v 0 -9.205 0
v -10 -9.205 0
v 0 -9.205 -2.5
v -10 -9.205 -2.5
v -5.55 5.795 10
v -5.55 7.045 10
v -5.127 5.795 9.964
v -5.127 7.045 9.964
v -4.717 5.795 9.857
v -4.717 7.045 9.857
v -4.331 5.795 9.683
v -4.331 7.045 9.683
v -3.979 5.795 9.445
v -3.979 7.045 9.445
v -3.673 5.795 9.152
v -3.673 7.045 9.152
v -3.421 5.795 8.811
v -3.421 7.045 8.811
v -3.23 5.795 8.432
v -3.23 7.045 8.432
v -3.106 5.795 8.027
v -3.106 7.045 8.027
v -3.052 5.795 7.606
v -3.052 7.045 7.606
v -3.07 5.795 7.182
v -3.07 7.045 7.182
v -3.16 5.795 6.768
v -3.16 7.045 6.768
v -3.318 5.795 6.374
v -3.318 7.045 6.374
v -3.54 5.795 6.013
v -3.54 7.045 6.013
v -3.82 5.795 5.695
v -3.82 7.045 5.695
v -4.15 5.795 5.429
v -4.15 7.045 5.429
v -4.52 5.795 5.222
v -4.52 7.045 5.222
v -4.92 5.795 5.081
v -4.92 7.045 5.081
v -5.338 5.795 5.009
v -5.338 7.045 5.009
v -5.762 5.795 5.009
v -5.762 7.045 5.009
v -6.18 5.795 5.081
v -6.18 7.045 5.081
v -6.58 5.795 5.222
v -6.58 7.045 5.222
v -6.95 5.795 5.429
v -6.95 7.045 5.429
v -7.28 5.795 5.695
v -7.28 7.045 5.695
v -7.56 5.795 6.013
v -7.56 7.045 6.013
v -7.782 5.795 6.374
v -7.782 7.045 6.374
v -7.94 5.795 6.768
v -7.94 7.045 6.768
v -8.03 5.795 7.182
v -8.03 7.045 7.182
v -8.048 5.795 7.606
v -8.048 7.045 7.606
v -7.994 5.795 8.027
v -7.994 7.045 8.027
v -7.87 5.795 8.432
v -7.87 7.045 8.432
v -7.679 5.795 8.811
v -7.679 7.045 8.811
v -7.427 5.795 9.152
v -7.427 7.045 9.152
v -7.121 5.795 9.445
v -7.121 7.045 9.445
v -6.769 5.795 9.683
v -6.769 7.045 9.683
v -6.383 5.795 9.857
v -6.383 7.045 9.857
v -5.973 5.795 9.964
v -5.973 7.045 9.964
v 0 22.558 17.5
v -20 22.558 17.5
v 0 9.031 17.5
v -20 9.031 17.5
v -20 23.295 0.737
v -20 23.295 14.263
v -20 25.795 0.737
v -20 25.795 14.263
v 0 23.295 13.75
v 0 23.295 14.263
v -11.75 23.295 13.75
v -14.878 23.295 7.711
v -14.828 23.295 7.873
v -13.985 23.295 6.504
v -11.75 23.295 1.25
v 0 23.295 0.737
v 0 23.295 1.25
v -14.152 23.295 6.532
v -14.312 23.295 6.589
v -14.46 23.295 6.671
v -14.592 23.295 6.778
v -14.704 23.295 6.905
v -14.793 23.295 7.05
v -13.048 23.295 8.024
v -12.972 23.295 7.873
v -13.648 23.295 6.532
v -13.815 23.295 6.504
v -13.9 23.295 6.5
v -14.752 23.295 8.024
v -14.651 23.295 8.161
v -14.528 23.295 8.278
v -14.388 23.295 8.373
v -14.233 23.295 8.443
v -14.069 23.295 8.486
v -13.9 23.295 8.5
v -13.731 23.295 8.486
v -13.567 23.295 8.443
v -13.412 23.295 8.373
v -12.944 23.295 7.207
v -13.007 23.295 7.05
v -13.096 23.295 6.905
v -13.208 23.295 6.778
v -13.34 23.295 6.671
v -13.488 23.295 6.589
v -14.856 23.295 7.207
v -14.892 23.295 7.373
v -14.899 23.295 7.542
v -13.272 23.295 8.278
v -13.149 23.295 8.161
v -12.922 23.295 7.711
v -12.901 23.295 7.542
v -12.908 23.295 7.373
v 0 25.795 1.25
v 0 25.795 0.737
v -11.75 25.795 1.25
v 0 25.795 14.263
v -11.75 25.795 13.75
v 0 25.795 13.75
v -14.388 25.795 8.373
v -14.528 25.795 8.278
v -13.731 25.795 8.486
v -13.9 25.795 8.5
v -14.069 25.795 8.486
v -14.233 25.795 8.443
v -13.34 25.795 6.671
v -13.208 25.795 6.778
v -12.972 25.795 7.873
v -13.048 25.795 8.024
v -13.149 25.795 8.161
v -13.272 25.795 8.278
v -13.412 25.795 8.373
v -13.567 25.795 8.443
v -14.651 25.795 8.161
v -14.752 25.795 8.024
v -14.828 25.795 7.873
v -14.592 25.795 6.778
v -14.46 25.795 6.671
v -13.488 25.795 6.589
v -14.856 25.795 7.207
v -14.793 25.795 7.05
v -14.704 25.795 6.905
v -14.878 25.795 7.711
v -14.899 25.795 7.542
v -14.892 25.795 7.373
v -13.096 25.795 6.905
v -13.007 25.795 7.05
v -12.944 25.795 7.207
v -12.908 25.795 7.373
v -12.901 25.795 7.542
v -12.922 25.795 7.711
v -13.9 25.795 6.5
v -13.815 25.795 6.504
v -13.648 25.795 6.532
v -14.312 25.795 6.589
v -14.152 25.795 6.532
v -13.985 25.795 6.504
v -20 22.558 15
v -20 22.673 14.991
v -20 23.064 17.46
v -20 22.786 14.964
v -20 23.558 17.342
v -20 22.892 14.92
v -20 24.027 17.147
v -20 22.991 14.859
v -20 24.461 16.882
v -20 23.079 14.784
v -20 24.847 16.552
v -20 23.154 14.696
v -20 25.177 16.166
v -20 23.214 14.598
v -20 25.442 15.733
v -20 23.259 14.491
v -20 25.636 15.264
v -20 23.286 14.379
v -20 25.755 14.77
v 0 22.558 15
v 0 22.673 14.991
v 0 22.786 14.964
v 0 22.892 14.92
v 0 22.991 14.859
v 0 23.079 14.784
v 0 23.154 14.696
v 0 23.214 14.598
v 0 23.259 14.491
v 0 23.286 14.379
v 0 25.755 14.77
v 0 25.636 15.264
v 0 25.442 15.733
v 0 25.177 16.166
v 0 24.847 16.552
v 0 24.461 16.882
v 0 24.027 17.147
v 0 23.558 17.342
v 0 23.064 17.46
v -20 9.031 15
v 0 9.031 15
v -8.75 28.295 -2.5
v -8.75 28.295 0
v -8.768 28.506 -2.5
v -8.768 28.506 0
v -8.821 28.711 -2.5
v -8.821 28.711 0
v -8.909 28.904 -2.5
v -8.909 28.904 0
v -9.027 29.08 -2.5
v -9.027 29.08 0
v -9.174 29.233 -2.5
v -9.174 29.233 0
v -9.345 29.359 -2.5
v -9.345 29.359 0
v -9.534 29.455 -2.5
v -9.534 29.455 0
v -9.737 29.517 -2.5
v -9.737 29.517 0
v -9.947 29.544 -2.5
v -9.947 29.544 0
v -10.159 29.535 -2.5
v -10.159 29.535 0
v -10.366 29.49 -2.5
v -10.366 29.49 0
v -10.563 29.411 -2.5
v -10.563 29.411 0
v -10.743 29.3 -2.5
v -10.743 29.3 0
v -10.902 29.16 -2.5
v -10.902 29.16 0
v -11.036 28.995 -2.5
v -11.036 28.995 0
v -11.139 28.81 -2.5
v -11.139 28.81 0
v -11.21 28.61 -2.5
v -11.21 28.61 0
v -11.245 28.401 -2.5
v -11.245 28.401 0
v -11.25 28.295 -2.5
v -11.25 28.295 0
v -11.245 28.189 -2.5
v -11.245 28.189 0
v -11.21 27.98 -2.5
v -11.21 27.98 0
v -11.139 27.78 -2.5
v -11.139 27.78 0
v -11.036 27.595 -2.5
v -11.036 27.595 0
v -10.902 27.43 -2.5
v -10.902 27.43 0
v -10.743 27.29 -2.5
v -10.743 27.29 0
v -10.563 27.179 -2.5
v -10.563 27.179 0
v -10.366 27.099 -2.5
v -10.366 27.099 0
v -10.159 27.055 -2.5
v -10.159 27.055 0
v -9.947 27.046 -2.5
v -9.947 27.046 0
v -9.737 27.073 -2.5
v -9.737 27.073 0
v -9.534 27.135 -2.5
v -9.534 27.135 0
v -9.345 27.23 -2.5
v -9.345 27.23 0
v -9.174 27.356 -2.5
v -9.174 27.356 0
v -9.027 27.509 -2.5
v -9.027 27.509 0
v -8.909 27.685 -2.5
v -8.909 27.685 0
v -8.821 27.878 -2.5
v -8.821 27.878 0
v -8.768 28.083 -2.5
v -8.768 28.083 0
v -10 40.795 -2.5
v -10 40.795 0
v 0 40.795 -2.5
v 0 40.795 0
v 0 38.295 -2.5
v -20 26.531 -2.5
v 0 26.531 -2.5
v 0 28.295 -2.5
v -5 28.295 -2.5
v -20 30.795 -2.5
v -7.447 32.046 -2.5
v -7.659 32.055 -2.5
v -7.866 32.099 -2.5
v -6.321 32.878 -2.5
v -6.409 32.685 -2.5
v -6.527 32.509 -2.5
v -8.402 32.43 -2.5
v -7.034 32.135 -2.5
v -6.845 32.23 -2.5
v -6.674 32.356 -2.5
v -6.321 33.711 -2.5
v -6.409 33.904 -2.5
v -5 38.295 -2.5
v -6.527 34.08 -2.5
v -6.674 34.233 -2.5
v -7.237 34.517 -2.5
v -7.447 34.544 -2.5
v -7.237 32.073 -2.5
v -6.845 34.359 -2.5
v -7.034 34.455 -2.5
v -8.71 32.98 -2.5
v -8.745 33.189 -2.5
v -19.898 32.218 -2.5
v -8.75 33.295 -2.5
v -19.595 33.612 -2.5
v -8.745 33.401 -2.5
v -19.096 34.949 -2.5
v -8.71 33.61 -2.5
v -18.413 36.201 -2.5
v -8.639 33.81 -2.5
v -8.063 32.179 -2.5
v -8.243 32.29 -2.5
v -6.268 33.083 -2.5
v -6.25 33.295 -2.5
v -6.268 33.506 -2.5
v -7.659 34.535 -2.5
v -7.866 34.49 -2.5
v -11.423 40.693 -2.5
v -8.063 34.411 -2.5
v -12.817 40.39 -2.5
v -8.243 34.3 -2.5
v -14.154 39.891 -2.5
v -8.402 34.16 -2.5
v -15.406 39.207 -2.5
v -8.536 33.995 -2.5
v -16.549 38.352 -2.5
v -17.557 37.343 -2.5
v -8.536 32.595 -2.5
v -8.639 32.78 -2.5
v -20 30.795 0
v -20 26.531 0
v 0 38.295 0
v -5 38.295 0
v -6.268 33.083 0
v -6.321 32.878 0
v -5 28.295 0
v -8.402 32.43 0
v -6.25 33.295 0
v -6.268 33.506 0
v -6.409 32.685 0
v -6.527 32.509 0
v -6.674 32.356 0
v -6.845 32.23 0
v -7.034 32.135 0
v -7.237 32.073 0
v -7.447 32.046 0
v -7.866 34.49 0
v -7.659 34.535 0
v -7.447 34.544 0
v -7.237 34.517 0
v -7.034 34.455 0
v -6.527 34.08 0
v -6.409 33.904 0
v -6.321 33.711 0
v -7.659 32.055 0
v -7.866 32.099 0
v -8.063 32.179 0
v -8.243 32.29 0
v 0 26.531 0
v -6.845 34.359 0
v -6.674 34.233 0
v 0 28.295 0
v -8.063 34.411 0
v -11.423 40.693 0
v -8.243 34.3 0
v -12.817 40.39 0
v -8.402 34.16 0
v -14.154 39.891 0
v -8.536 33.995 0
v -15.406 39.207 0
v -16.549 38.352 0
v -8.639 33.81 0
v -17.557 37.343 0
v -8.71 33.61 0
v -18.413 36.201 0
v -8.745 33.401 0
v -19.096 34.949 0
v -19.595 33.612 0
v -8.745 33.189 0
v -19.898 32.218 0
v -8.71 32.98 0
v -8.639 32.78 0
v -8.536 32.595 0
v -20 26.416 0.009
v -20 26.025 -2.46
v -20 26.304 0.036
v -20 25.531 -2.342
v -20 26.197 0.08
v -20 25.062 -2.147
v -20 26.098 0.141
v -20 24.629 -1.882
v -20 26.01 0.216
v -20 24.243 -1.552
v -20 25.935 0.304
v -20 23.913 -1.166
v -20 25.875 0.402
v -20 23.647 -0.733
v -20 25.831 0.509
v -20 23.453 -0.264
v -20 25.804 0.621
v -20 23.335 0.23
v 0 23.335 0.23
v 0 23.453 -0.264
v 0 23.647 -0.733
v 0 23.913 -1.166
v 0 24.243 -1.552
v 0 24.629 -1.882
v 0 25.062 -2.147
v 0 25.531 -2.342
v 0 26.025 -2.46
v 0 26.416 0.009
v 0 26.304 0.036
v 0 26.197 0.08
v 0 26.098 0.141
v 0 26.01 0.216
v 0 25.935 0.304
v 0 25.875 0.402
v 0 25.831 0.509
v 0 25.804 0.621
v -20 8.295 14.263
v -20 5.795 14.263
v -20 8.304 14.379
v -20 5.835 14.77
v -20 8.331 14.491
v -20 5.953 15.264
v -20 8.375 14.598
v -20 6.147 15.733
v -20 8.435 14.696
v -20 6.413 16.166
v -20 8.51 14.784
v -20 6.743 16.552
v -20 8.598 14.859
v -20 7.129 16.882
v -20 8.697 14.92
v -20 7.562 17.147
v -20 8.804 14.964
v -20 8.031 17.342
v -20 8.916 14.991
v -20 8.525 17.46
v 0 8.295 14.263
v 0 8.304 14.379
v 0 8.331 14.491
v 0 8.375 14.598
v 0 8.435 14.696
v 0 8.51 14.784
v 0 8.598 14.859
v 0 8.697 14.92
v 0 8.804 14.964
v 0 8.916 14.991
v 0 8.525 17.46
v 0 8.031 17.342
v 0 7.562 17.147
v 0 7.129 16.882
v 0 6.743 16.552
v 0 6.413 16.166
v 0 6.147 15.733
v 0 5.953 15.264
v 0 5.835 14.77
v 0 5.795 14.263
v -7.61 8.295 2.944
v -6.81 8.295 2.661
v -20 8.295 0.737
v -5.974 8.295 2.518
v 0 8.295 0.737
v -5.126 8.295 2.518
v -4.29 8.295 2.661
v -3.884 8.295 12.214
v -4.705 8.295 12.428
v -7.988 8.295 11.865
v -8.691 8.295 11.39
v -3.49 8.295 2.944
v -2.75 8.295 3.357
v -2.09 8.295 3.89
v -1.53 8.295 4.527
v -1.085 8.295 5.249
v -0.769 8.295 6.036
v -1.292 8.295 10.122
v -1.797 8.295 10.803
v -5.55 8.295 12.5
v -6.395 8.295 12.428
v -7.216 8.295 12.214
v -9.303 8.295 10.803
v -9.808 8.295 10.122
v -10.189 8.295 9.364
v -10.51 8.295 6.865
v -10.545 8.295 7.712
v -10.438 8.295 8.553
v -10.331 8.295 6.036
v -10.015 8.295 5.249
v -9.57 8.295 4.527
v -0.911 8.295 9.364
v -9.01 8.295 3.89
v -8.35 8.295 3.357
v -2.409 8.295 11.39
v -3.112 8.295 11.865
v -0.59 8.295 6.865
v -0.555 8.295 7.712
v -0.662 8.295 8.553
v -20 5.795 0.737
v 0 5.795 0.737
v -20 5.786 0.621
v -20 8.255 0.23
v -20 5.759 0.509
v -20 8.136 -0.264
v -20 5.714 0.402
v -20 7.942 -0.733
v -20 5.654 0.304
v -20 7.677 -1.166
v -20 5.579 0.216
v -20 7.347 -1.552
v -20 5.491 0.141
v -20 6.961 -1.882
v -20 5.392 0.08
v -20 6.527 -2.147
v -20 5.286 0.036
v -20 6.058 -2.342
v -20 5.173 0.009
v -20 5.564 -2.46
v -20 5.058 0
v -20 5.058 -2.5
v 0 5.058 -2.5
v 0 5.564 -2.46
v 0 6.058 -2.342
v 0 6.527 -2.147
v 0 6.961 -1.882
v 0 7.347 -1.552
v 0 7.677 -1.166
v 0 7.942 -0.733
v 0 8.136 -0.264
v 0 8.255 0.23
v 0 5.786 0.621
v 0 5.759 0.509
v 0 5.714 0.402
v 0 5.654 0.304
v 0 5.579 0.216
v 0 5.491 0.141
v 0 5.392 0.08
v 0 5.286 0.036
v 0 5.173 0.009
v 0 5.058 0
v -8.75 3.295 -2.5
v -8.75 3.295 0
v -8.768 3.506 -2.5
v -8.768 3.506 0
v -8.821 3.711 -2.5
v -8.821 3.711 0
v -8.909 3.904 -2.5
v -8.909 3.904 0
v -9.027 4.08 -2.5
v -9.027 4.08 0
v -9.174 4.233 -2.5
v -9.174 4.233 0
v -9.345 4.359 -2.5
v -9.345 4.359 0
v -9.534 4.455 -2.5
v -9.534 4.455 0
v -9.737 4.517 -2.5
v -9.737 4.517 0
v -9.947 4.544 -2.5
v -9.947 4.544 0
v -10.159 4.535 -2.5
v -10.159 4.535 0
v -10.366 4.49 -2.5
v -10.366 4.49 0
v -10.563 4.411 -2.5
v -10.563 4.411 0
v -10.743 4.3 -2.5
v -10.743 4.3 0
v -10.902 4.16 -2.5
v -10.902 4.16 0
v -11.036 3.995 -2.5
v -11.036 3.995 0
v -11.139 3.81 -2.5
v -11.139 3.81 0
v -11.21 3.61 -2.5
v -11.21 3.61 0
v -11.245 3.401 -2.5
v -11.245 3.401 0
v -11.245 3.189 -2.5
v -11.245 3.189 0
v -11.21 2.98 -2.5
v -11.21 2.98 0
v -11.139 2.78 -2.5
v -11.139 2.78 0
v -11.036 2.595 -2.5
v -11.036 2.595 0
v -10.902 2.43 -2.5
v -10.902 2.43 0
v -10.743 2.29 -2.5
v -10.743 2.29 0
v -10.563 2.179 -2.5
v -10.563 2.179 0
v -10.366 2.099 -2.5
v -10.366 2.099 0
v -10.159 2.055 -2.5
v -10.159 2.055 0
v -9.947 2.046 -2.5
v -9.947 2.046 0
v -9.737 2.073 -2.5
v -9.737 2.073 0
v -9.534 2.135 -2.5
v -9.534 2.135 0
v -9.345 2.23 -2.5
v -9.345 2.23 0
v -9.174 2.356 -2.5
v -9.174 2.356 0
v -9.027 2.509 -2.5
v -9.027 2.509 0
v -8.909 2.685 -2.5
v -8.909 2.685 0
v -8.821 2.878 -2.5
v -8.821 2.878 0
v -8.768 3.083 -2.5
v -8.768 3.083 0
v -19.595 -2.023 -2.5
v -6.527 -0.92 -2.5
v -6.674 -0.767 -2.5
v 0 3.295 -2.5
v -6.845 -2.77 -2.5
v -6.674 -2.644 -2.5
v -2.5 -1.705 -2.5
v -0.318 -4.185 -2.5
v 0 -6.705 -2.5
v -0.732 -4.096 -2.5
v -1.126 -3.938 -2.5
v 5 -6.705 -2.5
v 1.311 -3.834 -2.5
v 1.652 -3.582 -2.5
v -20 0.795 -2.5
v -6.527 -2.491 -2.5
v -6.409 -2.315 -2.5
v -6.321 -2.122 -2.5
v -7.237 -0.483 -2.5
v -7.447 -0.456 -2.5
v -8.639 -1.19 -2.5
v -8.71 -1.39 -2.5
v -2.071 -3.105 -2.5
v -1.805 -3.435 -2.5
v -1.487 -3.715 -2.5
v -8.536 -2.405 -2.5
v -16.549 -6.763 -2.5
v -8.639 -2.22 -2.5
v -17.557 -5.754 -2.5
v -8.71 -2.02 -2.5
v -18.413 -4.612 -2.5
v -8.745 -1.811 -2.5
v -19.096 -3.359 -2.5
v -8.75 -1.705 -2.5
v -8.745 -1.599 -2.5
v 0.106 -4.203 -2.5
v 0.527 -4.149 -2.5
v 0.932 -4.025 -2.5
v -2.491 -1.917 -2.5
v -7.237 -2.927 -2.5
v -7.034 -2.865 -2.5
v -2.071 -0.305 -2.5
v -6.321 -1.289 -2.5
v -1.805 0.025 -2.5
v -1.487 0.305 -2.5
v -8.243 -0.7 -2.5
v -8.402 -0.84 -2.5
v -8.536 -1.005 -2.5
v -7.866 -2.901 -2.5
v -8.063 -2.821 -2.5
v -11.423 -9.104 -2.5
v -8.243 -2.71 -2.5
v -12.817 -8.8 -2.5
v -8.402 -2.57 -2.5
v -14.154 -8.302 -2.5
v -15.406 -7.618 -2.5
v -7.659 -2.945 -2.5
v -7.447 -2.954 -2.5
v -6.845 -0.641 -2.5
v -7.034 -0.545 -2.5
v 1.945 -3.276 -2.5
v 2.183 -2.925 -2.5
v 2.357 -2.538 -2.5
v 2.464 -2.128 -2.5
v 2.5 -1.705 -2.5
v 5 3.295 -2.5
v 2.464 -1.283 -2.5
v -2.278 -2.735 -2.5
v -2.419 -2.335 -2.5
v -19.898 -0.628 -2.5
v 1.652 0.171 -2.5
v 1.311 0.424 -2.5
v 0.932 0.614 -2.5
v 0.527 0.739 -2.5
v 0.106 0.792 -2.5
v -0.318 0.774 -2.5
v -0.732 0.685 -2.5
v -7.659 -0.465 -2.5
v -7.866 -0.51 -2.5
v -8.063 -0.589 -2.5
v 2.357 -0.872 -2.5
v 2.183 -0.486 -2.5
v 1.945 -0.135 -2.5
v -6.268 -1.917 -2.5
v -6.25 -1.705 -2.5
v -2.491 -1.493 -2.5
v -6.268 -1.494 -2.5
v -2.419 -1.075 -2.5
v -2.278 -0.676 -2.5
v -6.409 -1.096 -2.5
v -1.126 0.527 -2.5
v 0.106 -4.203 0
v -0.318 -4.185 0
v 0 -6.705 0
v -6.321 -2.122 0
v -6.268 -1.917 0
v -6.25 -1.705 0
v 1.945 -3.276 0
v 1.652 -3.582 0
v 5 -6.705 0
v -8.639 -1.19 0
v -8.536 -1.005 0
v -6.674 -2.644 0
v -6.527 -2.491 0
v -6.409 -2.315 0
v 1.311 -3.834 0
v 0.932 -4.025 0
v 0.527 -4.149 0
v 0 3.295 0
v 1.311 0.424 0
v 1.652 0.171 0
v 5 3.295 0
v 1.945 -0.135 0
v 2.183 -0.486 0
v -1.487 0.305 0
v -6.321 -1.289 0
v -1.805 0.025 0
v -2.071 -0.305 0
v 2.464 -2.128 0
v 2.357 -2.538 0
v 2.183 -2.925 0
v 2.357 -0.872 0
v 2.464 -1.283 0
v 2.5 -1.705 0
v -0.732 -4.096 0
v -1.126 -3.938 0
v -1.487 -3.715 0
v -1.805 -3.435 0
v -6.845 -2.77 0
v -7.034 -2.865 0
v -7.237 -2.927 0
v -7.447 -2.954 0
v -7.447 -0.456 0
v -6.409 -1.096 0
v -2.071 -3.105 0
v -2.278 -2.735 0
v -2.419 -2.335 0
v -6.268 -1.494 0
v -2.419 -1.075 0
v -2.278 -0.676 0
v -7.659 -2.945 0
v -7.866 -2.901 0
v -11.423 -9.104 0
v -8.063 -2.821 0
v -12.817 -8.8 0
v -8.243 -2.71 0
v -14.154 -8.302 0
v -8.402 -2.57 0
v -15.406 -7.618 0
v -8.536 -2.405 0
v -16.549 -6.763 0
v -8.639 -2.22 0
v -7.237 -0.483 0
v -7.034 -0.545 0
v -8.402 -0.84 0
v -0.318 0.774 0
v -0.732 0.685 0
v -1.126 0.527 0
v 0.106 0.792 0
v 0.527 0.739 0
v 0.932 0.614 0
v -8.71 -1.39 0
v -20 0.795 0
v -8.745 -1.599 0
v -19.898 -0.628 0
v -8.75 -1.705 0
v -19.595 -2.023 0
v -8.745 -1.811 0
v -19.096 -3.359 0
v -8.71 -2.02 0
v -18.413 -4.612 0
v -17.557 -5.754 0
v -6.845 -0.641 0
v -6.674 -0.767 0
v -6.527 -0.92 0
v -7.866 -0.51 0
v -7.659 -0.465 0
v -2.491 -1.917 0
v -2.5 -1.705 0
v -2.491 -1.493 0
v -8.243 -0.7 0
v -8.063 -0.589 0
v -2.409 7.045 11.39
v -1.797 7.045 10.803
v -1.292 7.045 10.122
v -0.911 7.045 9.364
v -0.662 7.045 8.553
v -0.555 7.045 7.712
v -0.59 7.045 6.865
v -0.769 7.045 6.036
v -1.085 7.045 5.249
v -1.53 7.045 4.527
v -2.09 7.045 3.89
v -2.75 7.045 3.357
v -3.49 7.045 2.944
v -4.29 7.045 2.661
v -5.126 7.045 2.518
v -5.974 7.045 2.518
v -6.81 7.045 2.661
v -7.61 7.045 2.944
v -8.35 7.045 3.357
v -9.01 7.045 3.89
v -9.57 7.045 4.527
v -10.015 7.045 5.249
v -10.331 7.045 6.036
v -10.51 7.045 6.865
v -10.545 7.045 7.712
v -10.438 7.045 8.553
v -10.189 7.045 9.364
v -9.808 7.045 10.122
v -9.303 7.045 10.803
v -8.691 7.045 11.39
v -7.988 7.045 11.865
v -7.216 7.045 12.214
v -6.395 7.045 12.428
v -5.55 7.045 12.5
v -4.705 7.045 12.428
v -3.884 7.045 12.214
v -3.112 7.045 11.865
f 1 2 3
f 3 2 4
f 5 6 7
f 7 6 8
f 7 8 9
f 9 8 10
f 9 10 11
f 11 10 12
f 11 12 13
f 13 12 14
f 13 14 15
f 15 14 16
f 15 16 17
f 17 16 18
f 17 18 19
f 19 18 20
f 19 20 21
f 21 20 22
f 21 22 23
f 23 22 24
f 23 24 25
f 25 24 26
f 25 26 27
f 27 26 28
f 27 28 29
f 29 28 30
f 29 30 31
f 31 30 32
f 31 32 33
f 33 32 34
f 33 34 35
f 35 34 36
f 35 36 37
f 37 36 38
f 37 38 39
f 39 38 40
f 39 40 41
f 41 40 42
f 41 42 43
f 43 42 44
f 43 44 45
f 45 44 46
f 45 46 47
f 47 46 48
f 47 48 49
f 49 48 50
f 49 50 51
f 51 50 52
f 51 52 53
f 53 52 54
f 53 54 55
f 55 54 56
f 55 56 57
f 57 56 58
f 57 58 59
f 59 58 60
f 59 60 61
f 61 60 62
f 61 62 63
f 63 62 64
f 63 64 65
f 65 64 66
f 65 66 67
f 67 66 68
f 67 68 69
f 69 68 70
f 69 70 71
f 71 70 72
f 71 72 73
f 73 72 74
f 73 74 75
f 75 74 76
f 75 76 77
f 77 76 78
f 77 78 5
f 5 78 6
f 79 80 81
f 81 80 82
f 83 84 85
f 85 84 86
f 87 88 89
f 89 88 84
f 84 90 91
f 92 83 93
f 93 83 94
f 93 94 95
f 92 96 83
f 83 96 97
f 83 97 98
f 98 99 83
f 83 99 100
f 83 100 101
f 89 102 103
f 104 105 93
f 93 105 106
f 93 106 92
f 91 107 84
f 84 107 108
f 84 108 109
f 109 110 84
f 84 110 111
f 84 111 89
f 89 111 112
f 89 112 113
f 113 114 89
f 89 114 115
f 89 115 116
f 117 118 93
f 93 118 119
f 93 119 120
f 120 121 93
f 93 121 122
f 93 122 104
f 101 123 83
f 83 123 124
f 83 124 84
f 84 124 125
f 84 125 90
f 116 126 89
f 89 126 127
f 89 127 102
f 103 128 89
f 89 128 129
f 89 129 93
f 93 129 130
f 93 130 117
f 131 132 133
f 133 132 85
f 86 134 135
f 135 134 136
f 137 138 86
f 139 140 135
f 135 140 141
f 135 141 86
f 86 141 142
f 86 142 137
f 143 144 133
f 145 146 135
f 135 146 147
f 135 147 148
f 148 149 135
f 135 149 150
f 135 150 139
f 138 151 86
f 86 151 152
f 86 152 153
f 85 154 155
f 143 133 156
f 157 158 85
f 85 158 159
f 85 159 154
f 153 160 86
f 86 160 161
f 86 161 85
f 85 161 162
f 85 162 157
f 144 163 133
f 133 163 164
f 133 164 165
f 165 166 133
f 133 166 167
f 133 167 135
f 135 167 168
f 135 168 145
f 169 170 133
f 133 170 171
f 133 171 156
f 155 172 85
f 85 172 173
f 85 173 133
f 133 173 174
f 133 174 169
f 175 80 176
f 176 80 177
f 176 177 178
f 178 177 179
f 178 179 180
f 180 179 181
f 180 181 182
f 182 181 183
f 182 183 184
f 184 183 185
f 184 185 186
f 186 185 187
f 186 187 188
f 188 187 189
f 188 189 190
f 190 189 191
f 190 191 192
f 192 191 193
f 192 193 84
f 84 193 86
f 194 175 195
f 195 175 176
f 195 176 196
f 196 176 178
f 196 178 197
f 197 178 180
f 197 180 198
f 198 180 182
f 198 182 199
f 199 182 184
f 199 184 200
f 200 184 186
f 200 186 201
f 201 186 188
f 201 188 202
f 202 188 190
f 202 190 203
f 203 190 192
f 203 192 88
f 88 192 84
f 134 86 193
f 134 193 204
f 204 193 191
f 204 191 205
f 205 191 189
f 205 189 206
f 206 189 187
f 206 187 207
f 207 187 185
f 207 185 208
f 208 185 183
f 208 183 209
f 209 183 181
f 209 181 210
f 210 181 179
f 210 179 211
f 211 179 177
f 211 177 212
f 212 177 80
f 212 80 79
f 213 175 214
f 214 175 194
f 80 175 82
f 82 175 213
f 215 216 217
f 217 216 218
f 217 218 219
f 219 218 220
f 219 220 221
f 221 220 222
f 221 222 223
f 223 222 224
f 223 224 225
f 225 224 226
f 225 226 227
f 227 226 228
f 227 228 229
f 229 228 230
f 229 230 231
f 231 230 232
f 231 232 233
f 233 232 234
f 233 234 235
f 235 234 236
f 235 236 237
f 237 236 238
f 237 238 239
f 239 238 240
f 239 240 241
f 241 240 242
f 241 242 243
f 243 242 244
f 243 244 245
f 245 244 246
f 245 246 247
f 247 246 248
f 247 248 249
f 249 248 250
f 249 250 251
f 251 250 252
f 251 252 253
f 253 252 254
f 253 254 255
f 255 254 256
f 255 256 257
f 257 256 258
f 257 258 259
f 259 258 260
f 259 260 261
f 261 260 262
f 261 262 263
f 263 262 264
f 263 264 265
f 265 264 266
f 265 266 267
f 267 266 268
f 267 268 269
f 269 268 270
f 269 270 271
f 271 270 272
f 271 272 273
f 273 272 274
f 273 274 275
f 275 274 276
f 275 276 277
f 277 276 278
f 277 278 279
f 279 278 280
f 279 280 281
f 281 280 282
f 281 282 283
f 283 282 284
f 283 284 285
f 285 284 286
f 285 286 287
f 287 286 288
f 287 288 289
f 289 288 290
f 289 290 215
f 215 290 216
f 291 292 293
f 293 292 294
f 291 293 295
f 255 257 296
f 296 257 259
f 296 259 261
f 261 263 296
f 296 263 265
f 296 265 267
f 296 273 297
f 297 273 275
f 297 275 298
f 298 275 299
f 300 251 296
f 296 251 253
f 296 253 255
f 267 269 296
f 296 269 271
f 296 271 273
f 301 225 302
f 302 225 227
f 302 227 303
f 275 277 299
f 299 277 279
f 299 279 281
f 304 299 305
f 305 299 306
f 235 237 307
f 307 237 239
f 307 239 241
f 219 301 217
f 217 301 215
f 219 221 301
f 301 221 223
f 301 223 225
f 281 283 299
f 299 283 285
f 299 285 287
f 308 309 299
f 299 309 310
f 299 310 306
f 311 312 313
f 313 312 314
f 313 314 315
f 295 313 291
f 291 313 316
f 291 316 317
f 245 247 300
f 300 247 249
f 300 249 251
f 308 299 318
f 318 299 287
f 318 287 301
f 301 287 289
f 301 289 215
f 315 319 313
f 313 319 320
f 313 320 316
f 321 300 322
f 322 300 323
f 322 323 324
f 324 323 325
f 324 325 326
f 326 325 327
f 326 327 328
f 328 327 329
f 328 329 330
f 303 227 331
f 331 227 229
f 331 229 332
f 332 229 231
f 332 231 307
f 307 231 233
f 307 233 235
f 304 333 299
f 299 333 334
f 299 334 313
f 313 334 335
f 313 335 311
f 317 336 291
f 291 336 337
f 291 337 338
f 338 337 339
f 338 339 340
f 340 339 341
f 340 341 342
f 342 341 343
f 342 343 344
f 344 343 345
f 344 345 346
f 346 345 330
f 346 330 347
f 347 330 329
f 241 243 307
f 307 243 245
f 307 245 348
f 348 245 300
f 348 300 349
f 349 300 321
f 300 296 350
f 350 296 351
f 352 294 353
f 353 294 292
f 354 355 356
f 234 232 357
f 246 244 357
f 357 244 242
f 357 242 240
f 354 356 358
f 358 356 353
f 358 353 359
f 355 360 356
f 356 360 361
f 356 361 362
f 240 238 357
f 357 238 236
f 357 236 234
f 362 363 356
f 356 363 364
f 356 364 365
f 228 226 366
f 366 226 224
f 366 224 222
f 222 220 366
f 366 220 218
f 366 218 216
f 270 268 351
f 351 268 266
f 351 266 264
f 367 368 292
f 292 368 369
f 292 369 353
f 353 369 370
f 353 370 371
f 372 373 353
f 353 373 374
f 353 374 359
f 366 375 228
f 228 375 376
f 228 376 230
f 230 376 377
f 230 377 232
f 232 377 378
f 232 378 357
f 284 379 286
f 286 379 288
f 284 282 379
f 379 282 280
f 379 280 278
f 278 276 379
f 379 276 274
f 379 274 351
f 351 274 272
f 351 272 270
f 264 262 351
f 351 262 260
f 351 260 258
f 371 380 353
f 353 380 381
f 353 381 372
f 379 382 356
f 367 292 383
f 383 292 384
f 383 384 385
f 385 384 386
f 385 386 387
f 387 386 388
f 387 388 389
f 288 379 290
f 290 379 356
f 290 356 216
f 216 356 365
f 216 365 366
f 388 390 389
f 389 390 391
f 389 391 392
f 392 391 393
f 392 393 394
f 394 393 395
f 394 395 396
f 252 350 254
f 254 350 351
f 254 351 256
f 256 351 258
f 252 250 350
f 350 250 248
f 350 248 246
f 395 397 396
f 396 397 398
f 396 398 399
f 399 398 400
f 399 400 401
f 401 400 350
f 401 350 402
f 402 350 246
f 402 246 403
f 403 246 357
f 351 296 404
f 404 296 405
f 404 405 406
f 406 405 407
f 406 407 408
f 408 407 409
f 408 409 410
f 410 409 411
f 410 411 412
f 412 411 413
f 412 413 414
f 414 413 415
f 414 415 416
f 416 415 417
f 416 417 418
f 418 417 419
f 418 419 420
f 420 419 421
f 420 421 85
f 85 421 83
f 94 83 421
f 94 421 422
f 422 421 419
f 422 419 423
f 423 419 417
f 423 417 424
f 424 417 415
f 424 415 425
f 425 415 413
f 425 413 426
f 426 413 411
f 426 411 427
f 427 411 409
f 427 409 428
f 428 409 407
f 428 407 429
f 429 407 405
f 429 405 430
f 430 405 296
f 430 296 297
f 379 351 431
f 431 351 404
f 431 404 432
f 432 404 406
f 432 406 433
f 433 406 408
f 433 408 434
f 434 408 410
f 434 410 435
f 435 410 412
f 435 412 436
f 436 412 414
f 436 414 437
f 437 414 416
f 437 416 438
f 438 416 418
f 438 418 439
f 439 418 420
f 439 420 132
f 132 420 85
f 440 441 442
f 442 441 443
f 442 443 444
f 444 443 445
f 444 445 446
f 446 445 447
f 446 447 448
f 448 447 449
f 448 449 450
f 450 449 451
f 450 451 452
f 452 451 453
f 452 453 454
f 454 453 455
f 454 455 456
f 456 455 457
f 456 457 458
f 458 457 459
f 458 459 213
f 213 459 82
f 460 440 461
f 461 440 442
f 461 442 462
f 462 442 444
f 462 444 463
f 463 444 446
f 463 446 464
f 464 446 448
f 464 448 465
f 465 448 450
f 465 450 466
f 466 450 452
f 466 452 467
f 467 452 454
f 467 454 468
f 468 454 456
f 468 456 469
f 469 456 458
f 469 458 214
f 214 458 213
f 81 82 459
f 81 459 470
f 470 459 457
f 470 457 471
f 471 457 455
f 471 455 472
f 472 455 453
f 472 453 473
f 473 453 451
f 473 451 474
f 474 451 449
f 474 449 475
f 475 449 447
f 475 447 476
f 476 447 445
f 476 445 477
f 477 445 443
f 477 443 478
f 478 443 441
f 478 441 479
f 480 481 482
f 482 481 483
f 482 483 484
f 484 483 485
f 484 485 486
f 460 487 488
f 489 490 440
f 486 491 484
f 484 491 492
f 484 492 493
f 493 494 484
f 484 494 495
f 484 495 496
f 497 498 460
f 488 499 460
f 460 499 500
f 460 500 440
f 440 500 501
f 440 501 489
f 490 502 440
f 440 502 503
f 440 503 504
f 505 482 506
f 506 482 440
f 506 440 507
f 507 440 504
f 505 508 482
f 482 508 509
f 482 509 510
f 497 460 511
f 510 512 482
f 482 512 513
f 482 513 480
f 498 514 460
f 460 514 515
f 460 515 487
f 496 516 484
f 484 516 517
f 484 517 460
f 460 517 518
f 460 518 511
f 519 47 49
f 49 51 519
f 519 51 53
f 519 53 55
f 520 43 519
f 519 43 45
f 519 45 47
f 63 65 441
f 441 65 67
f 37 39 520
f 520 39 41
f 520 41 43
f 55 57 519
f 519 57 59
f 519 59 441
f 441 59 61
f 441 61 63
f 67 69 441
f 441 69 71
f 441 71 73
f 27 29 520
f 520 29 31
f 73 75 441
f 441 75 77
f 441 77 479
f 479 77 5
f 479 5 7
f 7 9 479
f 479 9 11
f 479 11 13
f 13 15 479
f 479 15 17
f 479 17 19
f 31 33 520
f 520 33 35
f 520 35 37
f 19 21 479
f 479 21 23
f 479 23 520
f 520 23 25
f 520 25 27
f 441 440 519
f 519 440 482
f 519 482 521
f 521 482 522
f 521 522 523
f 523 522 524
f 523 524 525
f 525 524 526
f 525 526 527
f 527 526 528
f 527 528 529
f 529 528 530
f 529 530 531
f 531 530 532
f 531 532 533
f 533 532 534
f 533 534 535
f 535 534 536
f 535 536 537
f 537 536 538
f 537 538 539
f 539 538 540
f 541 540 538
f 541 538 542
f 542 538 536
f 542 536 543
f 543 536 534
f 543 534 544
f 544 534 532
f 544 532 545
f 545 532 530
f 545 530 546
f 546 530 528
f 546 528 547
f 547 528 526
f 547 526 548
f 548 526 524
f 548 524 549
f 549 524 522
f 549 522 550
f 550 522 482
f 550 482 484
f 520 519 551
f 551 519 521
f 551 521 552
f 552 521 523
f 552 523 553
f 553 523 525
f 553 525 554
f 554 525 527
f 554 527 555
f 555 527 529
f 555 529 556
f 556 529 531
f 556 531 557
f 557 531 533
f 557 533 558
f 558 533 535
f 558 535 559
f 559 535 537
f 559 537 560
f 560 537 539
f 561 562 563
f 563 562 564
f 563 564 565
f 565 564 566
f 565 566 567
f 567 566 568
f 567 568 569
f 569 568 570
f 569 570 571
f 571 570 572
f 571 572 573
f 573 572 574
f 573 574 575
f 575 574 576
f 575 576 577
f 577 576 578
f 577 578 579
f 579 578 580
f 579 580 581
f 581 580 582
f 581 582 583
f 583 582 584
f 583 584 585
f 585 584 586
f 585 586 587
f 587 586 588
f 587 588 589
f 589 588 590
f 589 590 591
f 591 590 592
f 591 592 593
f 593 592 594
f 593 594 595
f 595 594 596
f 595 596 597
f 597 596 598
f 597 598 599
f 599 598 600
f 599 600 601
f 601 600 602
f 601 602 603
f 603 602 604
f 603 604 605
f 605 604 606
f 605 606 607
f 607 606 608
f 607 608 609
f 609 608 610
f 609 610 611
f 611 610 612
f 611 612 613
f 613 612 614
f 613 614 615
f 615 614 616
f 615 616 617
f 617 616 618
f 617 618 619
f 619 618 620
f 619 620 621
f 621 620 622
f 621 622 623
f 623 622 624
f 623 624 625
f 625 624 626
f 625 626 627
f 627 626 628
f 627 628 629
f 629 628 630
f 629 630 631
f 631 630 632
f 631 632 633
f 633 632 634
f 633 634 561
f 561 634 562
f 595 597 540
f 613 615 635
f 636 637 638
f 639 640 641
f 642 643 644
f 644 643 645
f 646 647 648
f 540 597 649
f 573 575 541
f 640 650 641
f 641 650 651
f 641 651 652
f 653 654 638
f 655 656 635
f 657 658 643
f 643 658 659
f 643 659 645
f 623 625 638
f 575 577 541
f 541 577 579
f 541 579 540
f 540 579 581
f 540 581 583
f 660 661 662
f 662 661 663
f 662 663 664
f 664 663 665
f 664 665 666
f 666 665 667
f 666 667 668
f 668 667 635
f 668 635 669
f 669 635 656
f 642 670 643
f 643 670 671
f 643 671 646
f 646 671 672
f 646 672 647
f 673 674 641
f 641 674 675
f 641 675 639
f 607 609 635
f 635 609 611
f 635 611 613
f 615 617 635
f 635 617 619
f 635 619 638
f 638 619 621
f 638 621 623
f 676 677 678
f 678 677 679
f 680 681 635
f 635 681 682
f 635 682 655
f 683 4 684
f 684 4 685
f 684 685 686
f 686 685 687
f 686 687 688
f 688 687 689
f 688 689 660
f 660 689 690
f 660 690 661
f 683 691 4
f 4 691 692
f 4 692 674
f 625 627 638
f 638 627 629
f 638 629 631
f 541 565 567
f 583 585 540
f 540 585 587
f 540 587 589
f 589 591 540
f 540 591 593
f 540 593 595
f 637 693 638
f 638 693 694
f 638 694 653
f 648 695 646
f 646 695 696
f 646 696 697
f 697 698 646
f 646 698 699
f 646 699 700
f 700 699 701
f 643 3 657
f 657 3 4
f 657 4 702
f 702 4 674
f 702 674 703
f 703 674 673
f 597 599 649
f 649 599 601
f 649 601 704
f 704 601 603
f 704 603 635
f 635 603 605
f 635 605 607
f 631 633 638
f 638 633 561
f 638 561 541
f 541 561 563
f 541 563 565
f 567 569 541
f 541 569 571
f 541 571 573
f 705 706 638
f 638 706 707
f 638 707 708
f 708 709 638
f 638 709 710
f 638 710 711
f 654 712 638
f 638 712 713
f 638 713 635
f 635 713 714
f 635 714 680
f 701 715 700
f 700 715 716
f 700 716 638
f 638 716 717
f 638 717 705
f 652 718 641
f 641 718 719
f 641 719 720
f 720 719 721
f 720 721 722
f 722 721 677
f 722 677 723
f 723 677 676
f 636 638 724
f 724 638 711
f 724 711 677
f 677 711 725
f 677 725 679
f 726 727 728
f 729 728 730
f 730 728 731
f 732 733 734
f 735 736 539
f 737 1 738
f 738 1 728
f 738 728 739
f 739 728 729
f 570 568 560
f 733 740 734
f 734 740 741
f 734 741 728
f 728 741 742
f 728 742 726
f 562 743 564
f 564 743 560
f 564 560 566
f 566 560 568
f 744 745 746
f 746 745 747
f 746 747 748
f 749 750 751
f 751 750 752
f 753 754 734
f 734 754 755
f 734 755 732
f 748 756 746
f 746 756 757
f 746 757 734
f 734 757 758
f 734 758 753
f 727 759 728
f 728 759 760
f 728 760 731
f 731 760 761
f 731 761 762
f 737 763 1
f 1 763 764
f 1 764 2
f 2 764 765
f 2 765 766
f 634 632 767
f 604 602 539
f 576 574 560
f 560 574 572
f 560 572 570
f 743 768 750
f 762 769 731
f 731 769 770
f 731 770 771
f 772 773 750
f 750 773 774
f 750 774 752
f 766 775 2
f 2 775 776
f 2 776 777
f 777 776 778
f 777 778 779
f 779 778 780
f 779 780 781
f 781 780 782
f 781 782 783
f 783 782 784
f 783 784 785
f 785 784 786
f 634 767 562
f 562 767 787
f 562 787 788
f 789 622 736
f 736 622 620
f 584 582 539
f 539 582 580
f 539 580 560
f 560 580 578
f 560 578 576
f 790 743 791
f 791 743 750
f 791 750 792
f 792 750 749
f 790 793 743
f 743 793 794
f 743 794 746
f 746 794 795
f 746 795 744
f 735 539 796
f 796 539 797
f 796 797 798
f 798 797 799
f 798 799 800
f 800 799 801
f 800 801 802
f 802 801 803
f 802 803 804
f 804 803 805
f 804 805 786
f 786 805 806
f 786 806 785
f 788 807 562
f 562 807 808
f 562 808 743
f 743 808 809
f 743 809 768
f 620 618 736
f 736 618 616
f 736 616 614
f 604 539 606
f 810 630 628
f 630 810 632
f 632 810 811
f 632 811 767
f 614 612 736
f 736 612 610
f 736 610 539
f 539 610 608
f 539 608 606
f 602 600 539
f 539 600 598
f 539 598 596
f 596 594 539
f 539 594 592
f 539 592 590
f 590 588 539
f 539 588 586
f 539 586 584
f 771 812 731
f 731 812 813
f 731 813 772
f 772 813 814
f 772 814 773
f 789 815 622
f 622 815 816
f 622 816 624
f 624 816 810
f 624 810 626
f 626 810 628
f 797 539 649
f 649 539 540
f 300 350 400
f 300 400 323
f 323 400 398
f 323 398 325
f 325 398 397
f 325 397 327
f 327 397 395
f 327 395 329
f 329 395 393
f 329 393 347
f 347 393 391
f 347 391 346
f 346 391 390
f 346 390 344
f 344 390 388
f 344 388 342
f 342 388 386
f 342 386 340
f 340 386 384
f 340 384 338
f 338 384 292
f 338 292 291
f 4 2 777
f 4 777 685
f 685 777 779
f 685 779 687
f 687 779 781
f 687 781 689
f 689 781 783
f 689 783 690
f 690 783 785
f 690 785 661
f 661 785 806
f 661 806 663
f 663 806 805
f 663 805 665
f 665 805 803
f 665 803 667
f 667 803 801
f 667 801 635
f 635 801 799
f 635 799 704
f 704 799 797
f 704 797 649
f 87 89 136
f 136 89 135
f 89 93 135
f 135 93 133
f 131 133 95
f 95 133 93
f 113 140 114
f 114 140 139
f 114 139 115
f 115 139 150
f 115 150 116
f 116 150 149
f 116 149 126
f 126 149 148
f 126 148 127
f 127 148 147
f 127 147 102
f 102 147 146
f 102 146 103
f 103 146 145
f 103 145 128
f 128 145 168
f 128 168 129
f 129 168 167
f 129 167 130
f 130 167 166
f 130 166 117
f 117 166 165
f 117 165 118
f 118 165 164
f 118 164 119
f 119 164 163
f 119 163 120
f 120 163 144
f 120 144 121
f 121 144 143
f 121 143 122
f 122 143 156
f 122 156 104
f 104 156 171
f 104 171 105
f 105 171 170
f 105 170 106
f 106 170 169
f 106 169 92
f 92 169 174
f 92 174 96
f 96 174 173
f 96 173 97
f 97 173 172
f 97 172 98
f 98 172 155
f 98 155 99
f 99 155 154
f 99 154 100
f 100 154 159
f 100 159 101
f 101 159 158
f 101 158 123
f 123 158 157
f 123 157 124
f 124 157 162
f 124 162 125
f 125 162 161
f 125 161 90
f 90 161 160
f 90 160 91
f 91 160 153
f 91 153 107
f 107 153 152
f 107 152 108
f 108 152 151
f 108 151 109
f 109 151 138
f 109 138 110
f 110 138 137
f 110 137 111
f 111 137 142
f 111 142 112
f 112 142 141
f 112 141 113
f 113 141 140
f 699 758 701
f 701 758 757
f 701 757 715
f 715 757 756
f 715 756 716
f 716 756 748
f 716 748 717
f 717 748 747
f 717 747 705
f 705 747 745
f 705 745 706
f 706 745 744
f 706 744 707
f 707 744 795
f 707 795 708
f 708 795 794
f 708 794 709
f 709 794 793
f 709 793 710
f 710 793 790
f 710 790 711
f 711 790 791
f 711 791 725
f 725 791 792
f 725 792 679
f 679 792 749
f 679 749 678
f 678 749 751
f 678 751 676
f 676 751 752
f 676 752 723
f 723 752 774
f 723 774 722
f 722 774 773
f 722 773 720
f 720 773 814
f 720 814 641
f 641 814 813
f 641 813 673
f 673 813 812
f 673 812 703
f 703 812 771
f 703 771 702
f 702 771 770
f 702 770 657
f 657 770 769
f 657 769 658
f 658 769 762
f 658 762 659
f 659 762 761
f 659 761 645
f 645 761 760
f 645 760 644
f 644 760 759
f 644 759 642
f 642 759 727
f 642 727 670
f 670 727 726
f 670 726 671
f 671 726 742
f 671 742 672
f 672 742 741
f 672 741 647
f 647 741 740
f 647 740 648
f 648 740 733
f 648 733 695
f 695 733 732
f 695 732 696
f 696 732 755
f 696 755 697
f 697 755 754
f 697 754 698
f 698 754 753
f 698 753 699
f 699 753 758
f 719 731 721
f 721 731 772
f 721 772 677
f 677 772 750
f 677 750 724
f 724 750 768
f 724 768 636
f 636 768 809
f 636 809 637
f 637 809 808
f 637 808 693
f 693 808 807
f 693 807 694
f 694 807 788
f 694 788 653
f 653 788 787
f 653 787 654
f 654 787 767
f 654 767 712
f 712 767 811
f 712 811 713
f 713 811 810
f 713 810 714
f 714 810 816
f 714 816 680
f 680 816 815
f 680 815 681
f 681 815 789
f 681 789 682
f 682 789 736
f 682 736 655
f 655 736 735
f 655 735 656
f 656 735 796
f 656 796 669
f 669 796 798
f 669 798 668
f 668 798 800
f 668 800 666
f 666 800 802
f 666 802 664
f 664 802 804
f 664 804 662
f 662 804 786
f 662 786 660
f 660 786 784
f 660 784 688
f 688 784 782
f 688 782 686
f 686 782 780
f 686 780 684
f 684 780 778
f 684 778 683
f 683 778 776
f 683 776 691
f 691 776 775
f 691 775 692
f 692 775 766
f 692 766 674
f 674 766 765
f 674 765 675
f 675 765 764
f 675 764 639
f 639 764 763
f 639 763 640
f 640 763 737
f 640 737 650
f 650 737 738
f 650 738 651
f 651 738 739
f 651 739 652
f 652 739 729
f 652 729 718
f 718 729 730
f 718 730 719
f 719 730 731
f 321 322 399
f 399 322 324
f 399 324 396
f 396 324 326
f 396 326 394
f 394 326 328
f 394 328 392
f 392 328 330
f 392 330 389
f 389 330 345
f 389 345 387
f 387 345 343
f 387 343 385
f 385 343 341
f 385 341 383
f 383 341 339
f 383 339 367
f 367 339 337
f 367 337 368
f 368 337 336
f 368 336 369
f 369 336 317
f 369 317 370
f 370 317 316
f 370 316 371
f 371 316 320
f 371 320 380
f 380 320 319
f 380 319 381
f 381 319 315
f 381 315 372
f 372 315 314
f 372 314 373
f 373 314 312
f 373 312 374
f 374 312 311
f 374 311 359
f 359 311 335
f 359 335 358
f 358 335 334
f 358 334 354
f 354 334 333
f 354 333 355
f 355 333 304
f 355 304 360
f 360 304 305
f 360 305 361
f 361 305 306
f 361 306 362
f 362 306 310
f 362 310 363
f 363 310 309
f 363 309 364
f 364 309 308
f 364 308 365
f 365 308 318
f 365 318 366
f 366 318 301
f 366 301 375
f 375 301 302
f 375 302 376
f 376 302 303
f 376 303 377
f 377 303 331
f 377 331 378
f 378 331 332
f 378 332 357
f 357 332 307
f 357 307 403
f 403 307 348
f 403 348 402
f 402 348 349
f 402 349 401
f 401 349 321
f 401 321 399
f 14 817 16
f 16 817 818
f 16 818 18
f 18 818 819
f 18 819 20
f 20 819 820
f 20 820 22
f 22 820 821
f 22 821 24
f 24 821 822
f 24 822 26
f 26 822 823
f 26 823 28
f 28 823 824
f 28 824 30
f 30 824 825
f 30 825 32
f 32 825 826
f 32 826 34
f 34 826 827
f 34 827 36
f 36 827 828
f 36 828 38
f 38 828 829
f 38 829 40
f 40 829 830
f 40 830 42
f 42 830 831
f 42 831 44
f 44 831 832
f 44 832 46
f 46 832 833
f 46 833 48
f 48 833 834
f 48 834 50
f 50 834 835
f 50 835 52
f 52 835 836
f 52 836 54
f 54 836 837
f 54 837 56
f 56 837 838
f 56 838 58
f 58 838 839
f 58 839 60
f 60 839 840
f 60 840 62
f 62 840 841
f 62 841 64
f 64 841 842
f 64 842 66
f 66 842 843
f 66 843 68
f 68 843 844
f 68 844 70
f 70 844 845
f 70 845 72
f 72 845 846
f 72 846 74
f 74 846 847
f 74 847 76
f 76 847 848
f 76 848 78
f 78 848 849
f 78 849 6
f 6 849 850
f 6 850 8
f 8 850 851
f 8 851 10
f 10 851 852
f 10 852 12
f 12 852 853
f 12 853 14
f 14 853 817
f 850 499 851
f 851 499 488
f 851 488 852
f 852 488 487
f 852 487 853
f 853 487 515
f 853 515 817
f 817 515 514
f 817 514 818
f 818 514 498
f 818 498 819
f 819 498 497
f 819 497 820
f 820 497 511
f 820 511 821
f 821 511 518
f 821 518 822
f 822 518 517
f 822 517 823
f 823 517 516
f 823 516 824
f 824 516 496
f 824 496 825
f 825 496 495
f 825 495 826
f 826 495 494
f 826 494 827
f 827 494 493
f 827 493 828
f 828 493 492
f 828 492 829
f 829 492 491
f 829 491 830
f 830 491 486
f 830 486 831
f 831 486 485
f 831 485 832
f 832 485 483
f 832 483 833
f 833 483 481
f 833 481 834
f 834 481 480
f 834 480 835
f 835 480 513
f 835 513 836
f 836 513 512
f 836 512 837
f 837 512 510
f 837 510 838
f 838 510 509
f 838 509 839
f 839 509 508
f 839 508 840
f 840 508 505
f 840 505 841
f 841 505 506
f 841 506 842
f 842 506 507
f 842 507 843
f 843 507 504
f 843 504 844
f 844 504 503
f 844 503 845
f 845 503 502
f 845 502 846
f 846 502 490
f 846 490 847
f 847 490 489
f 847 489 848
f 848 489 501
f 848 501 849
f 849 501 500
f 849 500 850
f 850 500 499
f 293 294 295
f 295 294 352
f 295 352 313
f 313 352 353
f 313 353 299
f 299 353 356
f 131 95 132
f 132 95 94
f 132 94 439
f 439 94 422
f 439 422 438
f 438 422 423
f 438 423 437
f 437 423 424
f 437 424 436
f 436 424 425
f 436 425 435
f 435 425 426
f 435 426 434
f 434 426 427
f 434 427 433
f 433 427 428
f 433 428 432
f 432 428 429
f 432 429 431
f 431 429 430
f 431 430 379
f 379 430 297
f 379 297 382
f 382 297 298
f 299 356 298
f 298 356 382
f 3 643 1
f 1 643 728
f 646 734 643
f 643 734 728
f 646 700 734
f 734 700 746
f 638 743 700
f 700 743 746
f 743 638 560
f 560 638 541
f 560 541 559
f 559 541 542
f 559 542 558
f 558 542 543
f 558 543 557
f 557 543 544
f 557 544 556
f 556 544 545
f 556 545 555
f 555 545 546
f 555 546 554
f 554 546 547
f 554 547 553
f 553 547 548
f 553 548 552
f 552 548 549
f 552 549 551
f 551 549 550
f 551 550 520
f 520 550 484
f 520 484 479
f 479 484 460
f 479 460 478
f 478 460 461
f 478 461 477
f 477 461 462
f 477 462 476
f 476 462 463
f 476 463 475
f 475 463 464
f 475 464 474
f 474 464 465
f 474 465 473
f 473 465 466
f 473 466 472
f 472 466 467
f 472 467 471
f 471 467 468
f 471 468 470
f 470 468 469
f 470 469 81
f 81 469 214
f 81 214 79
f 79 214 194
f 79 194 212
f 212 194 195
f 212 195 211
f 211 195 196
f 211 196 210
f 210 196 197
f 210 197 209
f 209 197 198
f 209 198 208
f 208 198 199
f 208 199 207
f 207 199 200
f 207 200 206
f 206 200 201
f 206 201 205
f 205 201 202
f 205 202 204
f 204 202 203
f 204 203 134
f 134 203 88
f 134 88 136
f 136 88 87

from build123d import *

# Parameters (mm, degrees)
SKETCH1_W           = 40
SKETCH1_H           = 50
SKETCH1_R           = 1.25
BASE_FLANGE1_DEPTH  = 2.5
SKETCH15_R          = 1
CUT_EXTRUDE3_DEPTH  = 10
JOG3_START          = -2.5
JOG3_OUTLINE_W      = 40
JOG3_OUTLINE_H      = 48.294687966
JOG3_OUTLINE_R      = 1
JOG3_OUTLINE_R_2    = 1.25
JOG3_DEPTH          = 2.5
JOG3_2_OUTLINE_W    = 40
JOG3_2_OUTLINE_H    = 1.705312034
JOG3_2_DEPTH        = 0.332528284
JOG3_START_2        = 14.2634
JOG3_3_OUTLINE_W    = 40
JOG3_3_OUTLINE_H    = 35
JOG3_3_OUTLINE_R    = 1
JOG3_3_OUTLINE_R_2  = 1.25
JOG3_3_DEPTH        = 3.2366
JOG3_4_OUTLINE_W    = 40
JOG3_4_OUTLINE_H    = 15.794687966
JOG3_4_OUTLINE_R    = 1.25
JOG3_4_DEPTH        = 3.2366
JOG3_5_OUTLINE_W    = 40
JOG3_5_OUTLINE_H    = 2.5
JOG3_5_DEPTH        = 15
JOG3_START_3        = 15
JOG3_6_OUTLINE_R    = 1.25
JOG3_6_OUTLINE_R_2  = 1
JOG3_6_DEPTH        = 2.5
JOG3_START_4        = -20
JOG3_7_DEPTH        = 40
JOG4_START          = -20
JOG4_DEPTH          = 40
JOG4_2_DEPTH        = 40
JOG4_START_2        = -3
JOG4_3_OUTLINE_R    = 1.25
JOG4_3_DEPTH        = 4
FILLET1_R           = 10
SKETCH18_R          = 2.5
BOSS_EXTRUDE1_DEPTH = 2.5
SKETCH19_R          = 1
SKETCH19_W          = 23.5
SKETCH19_H          = 12.5
CUT_EXTRUDE4_DEPTH  = 2.5
SKETCH20_R          = 2.5
SKETCH20_R_2        = 1.25
CUT_EXTRUDE6_DEPTH  = 10
SKETCH23_R          = 2.5
CUT_EXTRUDE7_DEPTH  = 44.945989578
SKETCH24_R          = 5
CUT_EXTRUDE8_DEPTH  = 1.25
SKETCH25_W          = 20
SKETCH25_H          = 13.5268
CUT_EXTRUDE11_DEPTH = 50.640775238


with BuildPart() as part:
    # Base-Flange1: sheet metal written as solids
    # Sketch1 → Base-Flange1 (new body)
    with BuildSketch(Plane.XY):
        Rectangle(SKETCH1_W, SKETCH1_H)
        with Locations((10, 12.5)):
            Circle(SKETCH1_R, mode=Mode.SUBTRACT)
        with Locations(Location((10, -12.5, 0), (0, 0, 180))):
            Circle(SKETCH1_R, mode=Mode.SUBTRACT)
        with Locations((-10, -12.5)):
            Circle(SKETCH1_R, mode=Mode.SUBTRACT)
        with Locations(Location((-10, 12.5, 0), (0, 0, 180))):
            Circle(SKETCH1_R, mode=Mode.SUBTRACT)
    extrude(amount=-BASE_FLANGE1_DEPTH)

    # Sketch15 → Cut-Extrude3 (cut)
    with BuildSketch(Plane.XY):
        with Locations((12, 0)):
            Circle(SKETCH15_R)
        with Locations(Location((-17, 0, 0), (0, 0, 180))):
            Circle(SKETCH15_R)
    extrude(amount=-CUT_EXTRUDE3_DEPTH, mode=Mode.SUBTRACT)

    # Jog3: read off the stored shape, not the designer's step
    # Jog3 outline → Jog3 (cut)
    with BuildSketch(Plane.XY.offset(JOG3_START)):
        with Locations((0, -0.852656017)):
            Rectangle(JOG3_OUTLINE_W, JOG3_OUTLINE_H)
        with Locations((-17, 0)):
            Circle(JOG3_OUTLINE_R, mode=Mode.SUBTRACT)
        with Locations((12, 0)):
            Circle(JOG3_OUTLINE_R, mode=Mode.SUBTRACT)
        with Locations((-10, 12.5)):
            Circle(JOG3_OUTLINE_R_2, mode=Mode.SUBTRACT)
        with Locations((10, 12.5)):
            Circle(JOG3_OUTLINE_R_2, mode=Mode.SUBTRACT)
        with Locations((10, -12.5)):
            Circle(JOG3_OUTLINE_R_2, mode=Mode.SUBTRACT)
        with Locations((-10, -12.5)):
            Circle(JOG3_OUTLINE_R_2, mode=Mode.SUBTRACT)
    extrude(amount=JOG3_DEPTH, mode=Mode.SUBTRACT)

    # Jog3 2 outline → Jog3 2 (cut)
    with BuildSketch(Plane.XY.offset(JOG3_START)):
        with Locations((0, 24.147343983)):
            Rectangle(JOG3_2_OUTLINE_W, JOG3_2_OUTLINE_H)
    extrude(amount=JOG3_2_DEPTH, mode=Mode.SUBTRACT)

    # Jog3 4 outline → Jog3 4 (add)
    with BuildSketch(Plane.XY.offset(JOG3_START)):
        with Locations((0, 32.897343983)):
            Rectangle(JOG3_4_OUTLINE_W, JOG3_4_OUTLINE_H)
        with Locations((10, 28.294687966)):
            Circle(JOG3_4_OUTLINE_R, mode=Mode.SUBTRACT)
        with Locations((-10, 28.294687966)):
            Circle(JOG3_4_OUTLINE_R, mode=Mode.SUBTRACT)
    extrude(amount=JOG3_4_DEPTH)



with BuildPart() as body_2:
    # Jog3 3 outline → Jog3 3 (new body)
    with BuildSketch(Plane.XY.offset(JOG3_START_2)):
        with Locations((0, 8.294687966)):
            Rectangle(JOG3_3_OUTLINE_W, JOG3_3_OUTLINE_H)
        with Locations((12, 15.794687966)):
            Circle(JOG3_3_OUTLINE_R, mode=Mode.SUBTRACT)
        with Locations((-17, 0)):
            Circle(JOG3_3_OUTLINE_R, mode=Mode.SUBTRACT)
        with Locations((-10, 3.294687966)):
            Circle(JOG3_3_OUTLINE_R_2, mode=Mode.SUBTRACT)
        with Locations((12, 0)):
            Circle(JOG3_3_OUTLINE_R, mode=Mode.SUBTRACT)
        with Locations((10, 3.294687966)):
            Circle(JOG3_3_OUTLINE_R_2, mode=Mode.SUBTRACT)
        with Locations((-17, 15.794687966)):
            Circle(JOG3_3_OUTLINE_R, mode=Mode.SUBTRACT)
        with Locations((-10, 12.5)):
            Circle(JOG3_3_OUTLINE_R_2, mode=Mode.SUBTRACT)
        with Locations((10, 12.5)):
            Circle(JOG3_3_OUTLINE_R_2, mode=Mode.SUBTRACT)
    extrude(amount=JOG3_3_DEPTH)


with BuildPart() as part_1:
    add(part.part)

    add(body_2.part)  # Jog3 5 merges body 2
    # Jog3 5 outline → Jog3 5 (add)
    with BuildSketch(Plane.XY):
        with Locations((0, 24.544687966)):
            Rectangle(JOG3_5_OUTLINE_W, JOG3_5_OUTLINE_H)
    extrude(amount=JOG3_5_DEPTH)

    # Jog3 6 outline → Jog3 6 (add)
    with BuildSketch(Plane.XY.offset(JOG3_START_3)):
        with Locations((10, 12.5)):
            Circle(JOG3_6_OUTLINE_R)
        with Locations((-10, 12.5)):
            Circle(JOG3_6_OUTLINE_R)
        with Locations((12, 0)):
            Circle(JOG3_6_OUTLINE_R_2)
        with Locations((-17, 0)):
            Circle(JOG3_6_OUTLINE_R_2)
    extrude(amount=JOG3_6_DEPTH)

    # Jog3 7 outline → Jog3 7 (cut)
    with BuildSketch(Plane.YZ.offset(JOG3_START_4)):
        with BuildLine():
            ThreePointArc((23.294687966, 14.2634), (23.078942821, 14.784254855), (22.558087966, 15))
            Line((22.558087966, 15), (-9.205312034, 15))
            Line((-9.205312034, 15), (-9.205312034, 14.2634))
            Line((-9.205312034, 14.2634), (23.294687966, 14.2634))
        make_face()
        with BuildLine():
            ThreePointArc((26.531287966, -2.5), (24.242666158, -1.552021808), (23.294687966, 0.7366))
            Line((23.294687966, 0.7366), (23.294687966, -2.167471716))
            Line((23.294687966, -2.167471716), (25, -2.167471716))
            Line((25, -2.167471716), (25, -2.5))
            Line((25, -2.5), (26.531287966, -2.5))
        make_face()
        with BuildLine():
            Line((26.531287966, 0), (40.794687966, 0))
            Line((40.794687966, 0), (40.794687966, 0.7366))
            Line((40.794687966, 0.7366), (25.794687966, 0.7366))
            ThreePointArc((25.794687966, 0.7366), (26.010433111, 0.215745145), (26.531287966, 0))
        make_face()
        with BuildLine():
            Line((25.794687966, 17.5), (22.558087966, 17.5))
            ThreePointArc((22.558087966, 17.5), (24.846709774, 16.552021808), (25.794687966, 14.2634))
            Line((25.794687966, 14.2634), (25.794687966, 17.5))
        make_face()
    extrude(amount=JOG3_7_DEPTH, mode=Mode.SUBTRACT)

    # Jog4: read off the stored shape, not the designer's step
    # Jog4 outline → Jog4 (cut)
    with BuildSketch(Plane.YZ.offset(JOG4_START)):
        with BuildLine():
            Line((-9.205312034, 15), (5.87962174, 15))
            ThreePointArc((5.87962174, 15), (7.019882984, 16.799110859), (9.031287966, 17.5))
            Line((9.031287966, 17.5), (-9.205312034, 17.5))
            Line((-9.205312034, 17.5), (-9.205312034, 15))
        make_face()
    extrude(amount=JOG4_DEPTH, mode=Mode.SUBTRACT)

    # Jog4 2 outline → Jog4 2 (add)
    with BuildSketch(Plane.YZ.offset(JOG4_START)):
        with BuildLine():
            Line((-9.205312034, 0), (-9.205312034, -2.5))
            Line((-9.205312034, -2.5), (5.058087966, -2.5))
            ThreePointArc((5.058087966, -2.5), (7.346709774, -1.552021808), (8.294687966, 0.7366))
            Line((8.294687966, 0.7366), (8.294687966, 14.2634))
            ThreePointArc((8.294687966, 14.2634), (8.510433111, 14.784254855), (9.031287966, 15))
            Line((9.031287966, 15), (5.87962174, 15))
            ThreePointArc((5.87962174, 15), (5.81599152, 14.634140241), (5.794687966, 14.2634))
            Line((5.794687966, 14.2634), (5.794687966, 0.7366))
            ThreePointArc((5.794687966, 0.7366), (5.578942821, 0.215745145), (5.058087966, 0))
            Line((5.058087966, 0), (-9.205312034, 0))
        make_face()
    extrude(amount=JOG4_2_DEPTH)

    # Jog4 3 outline → Jog4 3 (cut)
    with BuildSketch(Plane.XY.offset(JOG4_START_2)):
        with Locations((-10, 3.294687966)):
            Circle(JOG4_3_OUTLINE_R)
        with Locations((10, 3.294687966)):
            Circle(JOG4_3_OUTLINE_R)
    extrude(amount=JOG4_3_DEPTH, mode=Mode.SUBTRACT)

    # Fillet1
    fillet1_edges = [part_1.edges().sort_by_distance(p)[0] for p in [
        (20, -9.205312034, -1.25),
        (-20, -9.205312034, -1.25),
        (-20, 40.794687966, -1.25),
        (20, 40.794687966, -1.25),
    ]]
    fillet(fillet1_edges, radius=FILLET1_R)

    # Sketch18 → Boss-Extrude1 (add)
    with BuildSketch(Plane.XY.offset(17.5)):
        with Locations((12, 15.794687966)):
            Circle(SKETCH18_R)
        with Locations((-17, 15.794687966)):
            Circle(SKETCH18_R)
    extrude(amount=-BOSS_EXTRUDE1_DEPTH)

    # Sketch19 → Cut-Extrude4 (cut)
    with BuildSketch(Plane(origin=(0, 25.794687966, 0), x_dir=(1, 0, 0), z_dir=(0, 1, 0))):
        with Locations(Location((13.9, -7.5, 0), (0, 0, 270))):
            Circle(SKETCH19_R)
        with Locations(Location((-13.9, -7.5, 0), (0, 0, 90))):
            Circle(SKETCH19_R)
        with Locations((0, -7.5)):
            Rectangle(SKETCH19_W, SKETCH19_H)
    extrude(amount=-CUT_EXTRUDE4_DEPTH, mode=Mode.SUBTRACT)

    # Sketch20 → Cut-Extrude6 (cut)
    with BuildSketch(Plane.XY):
        with Locations((0, 33.294687966)):
            Circle(SKETCH20_R)
        with Locations(Location((0, -1.705312034, 0), (0, 0, 180))):
            Circle(SKETCH20_R)
        with Locations((7.5, -1.705312034)):
            Circle(SKETCH20_R_2)
        with Locations(Location((-7.5, -1.705312034, 0), (0, 0, 180))):
            Circle(SKETCH20_R_2)
        with Locations(Location((7.5, 33.294687966, 0), (0, 0, 180))):
            Circle(SKETCH20_R_2)
        with Locations((-7.5, 33.294687966)):
            Circle(SKETCH20_R_2)
    extrude(amount=-CUT_EXTRUDE6_DEPTH, mode=Mode.SUBTRACT)

    # Sketch23 → Cut-Extrude7 (cut, through all)
    with BuildSketch(Plane(origin=(0, 25.794687966, 0), x_dir=(1, 0, 0), z_dir=(0, 1, 0))):
        with Locations(Location((-5.55, -7.5, 0), (0, 0, 270))):
            Circle(SKETCH23_R)
    extrude(amount=-CUT_EXTRUDE7_DEPTH, mode=Mode.SUBTRACT)

    # Sketch24 → Cut-Extrude8 (cut)
    with BuildSketch(Plane(origin=(0, 8.294687966, 0), x_dir=(1, 0, 0), z_dir=(0, 1, 0))):
        with Locations(Location((-5.55, -7.5, 0), (0, 0, 270))):
            Circle(SKETCH24_R)
    extrude(amount=-CUT_EXTRUDE8_DEPTH, mode=Mode.SUBTRACT)

    # Sketch25 → Cut-Extrude11 (cut, through all)
    with BuildSketch(Plane.XY.offset(17.5)):
        Polygon((20, 40.794687966), (0, 40.794687966), (0, 38.294687966), (-5, 38.294687966), (-5, 28.294687966), (0, 28.294687966), (0, 22.558087966), (20, 22.558087966), align=None)
        with Locations((10, 15.794687966)):
            Rectangle(SKETCH25_W, SKETCH25_H)
        Polygon((20, -9.205312034), (20, 9.031287966), (0, 9.031287966), (0, 3.294687966), (5, 3.294687966), (5, -6.705312034), (0, -6.705312034), (0, -9.205312034), align=None)
    extrude(amount=-CUT_EXTRUDE11_DEPTH, mode=Mode.SUBTRACT)


solid = part_1.part
